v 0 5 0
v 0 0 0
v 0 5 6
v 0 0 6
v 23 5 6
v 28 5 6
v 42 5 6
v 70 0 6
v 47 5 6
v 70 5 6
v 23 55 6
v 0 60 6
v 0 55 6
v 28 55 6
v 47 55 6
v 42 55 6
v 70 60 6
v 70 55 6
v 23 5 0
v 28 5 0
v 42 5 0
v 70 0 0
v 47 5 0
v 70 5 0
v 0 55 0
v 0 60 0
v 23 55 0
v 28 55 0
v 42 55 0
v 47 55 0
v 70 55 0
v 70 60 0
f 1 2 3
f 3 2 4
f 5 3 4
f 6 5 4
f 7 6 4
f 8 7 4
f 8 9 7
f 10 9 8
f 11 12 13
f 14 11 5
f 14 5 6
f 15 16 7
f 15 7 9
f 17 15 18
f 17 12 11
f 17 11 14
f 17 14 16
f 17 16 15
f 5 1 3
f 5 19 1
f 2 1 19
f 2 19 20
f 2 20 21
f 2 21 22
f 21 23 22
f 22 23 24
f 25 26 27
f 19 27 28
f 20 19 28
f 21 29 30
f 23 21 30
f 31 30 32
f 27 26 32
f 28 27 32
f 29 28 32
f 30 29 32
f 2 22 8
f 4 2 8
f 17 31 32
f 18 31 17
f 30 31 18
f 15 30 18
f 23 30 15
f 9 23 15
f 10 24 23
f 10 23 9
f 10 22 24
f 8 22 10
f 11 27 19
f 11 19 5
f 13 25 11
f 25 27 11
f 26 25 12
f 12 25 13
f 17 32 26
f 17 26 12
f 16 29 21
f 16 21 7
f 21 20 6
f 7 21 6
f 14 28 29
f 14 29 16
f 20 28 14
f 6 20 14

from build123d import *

# Parameters (mm, degrees)
BOX002_W     = 25
BOX002_H     = 50
BOX002_DEPTH = 10
BOX003_W     = 25
BOX003_H     = 50
BOX003_DEPTH = 10
BOX001_W     = 14
BOX001_H     = 50
BOX001_DEPTH = 10
BOX_W        = 70
BOX_H        = 60
BOX_DEPTH    = 6


with BuildPart() as cube002:
    # Box002 → Box002 (new body)
    with BuildSketch(Plane(origin=(-2, 5, -1), x_dir=(1, 0, 0), z_dir=(0, 0, 1))):
        with Locations((12.5, 25)):
            Rectangle(BOX002_W, BOX002_H)
    extrude(amount=BOX002_DEPTH)


with BuildPart() as cube003:
    # Box003 → Box003 (new body)
    with BuildSketch(Plane(origin=(47, 5, -1), x_dir=(1, 0, 0), z_dir=(0, 0, 1))):
        with Locations((12.5, 25)):
            Rectangle(BOX003_W, BOX003_H)
    extrude(amount=BOX003_DEPTH)


with BuildPart() as cube001:
    # Box001 → Box001 (new body)
    with BuildSketch(Plane(origin=(28, 5, -1), x_dir=(1, 0, 0), z_dir=(0, 0, 1))):
        with Locations((7, 25)):
            Rectangle(BOX001_W, BOX001_H)
    extrude(amount=BOX001_DEPTH)


with BuildPart() as cut002:
    # Box → Box (new body)
    with BuildSketch(Plane.XY):
        with Locations((35, 30)):
            Rectangle(BOX_W, BOX_H)
    extrude(amount=BOX_DEPTH)

    # Cut: cut Cube001
    add(cube001.part, mode=Mode.SUBTRACT)

    # Cut001: cut Cube003
    add(cube003.part, mode=Mode.SUBTRACT)

    # Cut002: cut Cube002
    add(cube002.part, mode=Mode.SUBTRACT)


solid = cut002.part
